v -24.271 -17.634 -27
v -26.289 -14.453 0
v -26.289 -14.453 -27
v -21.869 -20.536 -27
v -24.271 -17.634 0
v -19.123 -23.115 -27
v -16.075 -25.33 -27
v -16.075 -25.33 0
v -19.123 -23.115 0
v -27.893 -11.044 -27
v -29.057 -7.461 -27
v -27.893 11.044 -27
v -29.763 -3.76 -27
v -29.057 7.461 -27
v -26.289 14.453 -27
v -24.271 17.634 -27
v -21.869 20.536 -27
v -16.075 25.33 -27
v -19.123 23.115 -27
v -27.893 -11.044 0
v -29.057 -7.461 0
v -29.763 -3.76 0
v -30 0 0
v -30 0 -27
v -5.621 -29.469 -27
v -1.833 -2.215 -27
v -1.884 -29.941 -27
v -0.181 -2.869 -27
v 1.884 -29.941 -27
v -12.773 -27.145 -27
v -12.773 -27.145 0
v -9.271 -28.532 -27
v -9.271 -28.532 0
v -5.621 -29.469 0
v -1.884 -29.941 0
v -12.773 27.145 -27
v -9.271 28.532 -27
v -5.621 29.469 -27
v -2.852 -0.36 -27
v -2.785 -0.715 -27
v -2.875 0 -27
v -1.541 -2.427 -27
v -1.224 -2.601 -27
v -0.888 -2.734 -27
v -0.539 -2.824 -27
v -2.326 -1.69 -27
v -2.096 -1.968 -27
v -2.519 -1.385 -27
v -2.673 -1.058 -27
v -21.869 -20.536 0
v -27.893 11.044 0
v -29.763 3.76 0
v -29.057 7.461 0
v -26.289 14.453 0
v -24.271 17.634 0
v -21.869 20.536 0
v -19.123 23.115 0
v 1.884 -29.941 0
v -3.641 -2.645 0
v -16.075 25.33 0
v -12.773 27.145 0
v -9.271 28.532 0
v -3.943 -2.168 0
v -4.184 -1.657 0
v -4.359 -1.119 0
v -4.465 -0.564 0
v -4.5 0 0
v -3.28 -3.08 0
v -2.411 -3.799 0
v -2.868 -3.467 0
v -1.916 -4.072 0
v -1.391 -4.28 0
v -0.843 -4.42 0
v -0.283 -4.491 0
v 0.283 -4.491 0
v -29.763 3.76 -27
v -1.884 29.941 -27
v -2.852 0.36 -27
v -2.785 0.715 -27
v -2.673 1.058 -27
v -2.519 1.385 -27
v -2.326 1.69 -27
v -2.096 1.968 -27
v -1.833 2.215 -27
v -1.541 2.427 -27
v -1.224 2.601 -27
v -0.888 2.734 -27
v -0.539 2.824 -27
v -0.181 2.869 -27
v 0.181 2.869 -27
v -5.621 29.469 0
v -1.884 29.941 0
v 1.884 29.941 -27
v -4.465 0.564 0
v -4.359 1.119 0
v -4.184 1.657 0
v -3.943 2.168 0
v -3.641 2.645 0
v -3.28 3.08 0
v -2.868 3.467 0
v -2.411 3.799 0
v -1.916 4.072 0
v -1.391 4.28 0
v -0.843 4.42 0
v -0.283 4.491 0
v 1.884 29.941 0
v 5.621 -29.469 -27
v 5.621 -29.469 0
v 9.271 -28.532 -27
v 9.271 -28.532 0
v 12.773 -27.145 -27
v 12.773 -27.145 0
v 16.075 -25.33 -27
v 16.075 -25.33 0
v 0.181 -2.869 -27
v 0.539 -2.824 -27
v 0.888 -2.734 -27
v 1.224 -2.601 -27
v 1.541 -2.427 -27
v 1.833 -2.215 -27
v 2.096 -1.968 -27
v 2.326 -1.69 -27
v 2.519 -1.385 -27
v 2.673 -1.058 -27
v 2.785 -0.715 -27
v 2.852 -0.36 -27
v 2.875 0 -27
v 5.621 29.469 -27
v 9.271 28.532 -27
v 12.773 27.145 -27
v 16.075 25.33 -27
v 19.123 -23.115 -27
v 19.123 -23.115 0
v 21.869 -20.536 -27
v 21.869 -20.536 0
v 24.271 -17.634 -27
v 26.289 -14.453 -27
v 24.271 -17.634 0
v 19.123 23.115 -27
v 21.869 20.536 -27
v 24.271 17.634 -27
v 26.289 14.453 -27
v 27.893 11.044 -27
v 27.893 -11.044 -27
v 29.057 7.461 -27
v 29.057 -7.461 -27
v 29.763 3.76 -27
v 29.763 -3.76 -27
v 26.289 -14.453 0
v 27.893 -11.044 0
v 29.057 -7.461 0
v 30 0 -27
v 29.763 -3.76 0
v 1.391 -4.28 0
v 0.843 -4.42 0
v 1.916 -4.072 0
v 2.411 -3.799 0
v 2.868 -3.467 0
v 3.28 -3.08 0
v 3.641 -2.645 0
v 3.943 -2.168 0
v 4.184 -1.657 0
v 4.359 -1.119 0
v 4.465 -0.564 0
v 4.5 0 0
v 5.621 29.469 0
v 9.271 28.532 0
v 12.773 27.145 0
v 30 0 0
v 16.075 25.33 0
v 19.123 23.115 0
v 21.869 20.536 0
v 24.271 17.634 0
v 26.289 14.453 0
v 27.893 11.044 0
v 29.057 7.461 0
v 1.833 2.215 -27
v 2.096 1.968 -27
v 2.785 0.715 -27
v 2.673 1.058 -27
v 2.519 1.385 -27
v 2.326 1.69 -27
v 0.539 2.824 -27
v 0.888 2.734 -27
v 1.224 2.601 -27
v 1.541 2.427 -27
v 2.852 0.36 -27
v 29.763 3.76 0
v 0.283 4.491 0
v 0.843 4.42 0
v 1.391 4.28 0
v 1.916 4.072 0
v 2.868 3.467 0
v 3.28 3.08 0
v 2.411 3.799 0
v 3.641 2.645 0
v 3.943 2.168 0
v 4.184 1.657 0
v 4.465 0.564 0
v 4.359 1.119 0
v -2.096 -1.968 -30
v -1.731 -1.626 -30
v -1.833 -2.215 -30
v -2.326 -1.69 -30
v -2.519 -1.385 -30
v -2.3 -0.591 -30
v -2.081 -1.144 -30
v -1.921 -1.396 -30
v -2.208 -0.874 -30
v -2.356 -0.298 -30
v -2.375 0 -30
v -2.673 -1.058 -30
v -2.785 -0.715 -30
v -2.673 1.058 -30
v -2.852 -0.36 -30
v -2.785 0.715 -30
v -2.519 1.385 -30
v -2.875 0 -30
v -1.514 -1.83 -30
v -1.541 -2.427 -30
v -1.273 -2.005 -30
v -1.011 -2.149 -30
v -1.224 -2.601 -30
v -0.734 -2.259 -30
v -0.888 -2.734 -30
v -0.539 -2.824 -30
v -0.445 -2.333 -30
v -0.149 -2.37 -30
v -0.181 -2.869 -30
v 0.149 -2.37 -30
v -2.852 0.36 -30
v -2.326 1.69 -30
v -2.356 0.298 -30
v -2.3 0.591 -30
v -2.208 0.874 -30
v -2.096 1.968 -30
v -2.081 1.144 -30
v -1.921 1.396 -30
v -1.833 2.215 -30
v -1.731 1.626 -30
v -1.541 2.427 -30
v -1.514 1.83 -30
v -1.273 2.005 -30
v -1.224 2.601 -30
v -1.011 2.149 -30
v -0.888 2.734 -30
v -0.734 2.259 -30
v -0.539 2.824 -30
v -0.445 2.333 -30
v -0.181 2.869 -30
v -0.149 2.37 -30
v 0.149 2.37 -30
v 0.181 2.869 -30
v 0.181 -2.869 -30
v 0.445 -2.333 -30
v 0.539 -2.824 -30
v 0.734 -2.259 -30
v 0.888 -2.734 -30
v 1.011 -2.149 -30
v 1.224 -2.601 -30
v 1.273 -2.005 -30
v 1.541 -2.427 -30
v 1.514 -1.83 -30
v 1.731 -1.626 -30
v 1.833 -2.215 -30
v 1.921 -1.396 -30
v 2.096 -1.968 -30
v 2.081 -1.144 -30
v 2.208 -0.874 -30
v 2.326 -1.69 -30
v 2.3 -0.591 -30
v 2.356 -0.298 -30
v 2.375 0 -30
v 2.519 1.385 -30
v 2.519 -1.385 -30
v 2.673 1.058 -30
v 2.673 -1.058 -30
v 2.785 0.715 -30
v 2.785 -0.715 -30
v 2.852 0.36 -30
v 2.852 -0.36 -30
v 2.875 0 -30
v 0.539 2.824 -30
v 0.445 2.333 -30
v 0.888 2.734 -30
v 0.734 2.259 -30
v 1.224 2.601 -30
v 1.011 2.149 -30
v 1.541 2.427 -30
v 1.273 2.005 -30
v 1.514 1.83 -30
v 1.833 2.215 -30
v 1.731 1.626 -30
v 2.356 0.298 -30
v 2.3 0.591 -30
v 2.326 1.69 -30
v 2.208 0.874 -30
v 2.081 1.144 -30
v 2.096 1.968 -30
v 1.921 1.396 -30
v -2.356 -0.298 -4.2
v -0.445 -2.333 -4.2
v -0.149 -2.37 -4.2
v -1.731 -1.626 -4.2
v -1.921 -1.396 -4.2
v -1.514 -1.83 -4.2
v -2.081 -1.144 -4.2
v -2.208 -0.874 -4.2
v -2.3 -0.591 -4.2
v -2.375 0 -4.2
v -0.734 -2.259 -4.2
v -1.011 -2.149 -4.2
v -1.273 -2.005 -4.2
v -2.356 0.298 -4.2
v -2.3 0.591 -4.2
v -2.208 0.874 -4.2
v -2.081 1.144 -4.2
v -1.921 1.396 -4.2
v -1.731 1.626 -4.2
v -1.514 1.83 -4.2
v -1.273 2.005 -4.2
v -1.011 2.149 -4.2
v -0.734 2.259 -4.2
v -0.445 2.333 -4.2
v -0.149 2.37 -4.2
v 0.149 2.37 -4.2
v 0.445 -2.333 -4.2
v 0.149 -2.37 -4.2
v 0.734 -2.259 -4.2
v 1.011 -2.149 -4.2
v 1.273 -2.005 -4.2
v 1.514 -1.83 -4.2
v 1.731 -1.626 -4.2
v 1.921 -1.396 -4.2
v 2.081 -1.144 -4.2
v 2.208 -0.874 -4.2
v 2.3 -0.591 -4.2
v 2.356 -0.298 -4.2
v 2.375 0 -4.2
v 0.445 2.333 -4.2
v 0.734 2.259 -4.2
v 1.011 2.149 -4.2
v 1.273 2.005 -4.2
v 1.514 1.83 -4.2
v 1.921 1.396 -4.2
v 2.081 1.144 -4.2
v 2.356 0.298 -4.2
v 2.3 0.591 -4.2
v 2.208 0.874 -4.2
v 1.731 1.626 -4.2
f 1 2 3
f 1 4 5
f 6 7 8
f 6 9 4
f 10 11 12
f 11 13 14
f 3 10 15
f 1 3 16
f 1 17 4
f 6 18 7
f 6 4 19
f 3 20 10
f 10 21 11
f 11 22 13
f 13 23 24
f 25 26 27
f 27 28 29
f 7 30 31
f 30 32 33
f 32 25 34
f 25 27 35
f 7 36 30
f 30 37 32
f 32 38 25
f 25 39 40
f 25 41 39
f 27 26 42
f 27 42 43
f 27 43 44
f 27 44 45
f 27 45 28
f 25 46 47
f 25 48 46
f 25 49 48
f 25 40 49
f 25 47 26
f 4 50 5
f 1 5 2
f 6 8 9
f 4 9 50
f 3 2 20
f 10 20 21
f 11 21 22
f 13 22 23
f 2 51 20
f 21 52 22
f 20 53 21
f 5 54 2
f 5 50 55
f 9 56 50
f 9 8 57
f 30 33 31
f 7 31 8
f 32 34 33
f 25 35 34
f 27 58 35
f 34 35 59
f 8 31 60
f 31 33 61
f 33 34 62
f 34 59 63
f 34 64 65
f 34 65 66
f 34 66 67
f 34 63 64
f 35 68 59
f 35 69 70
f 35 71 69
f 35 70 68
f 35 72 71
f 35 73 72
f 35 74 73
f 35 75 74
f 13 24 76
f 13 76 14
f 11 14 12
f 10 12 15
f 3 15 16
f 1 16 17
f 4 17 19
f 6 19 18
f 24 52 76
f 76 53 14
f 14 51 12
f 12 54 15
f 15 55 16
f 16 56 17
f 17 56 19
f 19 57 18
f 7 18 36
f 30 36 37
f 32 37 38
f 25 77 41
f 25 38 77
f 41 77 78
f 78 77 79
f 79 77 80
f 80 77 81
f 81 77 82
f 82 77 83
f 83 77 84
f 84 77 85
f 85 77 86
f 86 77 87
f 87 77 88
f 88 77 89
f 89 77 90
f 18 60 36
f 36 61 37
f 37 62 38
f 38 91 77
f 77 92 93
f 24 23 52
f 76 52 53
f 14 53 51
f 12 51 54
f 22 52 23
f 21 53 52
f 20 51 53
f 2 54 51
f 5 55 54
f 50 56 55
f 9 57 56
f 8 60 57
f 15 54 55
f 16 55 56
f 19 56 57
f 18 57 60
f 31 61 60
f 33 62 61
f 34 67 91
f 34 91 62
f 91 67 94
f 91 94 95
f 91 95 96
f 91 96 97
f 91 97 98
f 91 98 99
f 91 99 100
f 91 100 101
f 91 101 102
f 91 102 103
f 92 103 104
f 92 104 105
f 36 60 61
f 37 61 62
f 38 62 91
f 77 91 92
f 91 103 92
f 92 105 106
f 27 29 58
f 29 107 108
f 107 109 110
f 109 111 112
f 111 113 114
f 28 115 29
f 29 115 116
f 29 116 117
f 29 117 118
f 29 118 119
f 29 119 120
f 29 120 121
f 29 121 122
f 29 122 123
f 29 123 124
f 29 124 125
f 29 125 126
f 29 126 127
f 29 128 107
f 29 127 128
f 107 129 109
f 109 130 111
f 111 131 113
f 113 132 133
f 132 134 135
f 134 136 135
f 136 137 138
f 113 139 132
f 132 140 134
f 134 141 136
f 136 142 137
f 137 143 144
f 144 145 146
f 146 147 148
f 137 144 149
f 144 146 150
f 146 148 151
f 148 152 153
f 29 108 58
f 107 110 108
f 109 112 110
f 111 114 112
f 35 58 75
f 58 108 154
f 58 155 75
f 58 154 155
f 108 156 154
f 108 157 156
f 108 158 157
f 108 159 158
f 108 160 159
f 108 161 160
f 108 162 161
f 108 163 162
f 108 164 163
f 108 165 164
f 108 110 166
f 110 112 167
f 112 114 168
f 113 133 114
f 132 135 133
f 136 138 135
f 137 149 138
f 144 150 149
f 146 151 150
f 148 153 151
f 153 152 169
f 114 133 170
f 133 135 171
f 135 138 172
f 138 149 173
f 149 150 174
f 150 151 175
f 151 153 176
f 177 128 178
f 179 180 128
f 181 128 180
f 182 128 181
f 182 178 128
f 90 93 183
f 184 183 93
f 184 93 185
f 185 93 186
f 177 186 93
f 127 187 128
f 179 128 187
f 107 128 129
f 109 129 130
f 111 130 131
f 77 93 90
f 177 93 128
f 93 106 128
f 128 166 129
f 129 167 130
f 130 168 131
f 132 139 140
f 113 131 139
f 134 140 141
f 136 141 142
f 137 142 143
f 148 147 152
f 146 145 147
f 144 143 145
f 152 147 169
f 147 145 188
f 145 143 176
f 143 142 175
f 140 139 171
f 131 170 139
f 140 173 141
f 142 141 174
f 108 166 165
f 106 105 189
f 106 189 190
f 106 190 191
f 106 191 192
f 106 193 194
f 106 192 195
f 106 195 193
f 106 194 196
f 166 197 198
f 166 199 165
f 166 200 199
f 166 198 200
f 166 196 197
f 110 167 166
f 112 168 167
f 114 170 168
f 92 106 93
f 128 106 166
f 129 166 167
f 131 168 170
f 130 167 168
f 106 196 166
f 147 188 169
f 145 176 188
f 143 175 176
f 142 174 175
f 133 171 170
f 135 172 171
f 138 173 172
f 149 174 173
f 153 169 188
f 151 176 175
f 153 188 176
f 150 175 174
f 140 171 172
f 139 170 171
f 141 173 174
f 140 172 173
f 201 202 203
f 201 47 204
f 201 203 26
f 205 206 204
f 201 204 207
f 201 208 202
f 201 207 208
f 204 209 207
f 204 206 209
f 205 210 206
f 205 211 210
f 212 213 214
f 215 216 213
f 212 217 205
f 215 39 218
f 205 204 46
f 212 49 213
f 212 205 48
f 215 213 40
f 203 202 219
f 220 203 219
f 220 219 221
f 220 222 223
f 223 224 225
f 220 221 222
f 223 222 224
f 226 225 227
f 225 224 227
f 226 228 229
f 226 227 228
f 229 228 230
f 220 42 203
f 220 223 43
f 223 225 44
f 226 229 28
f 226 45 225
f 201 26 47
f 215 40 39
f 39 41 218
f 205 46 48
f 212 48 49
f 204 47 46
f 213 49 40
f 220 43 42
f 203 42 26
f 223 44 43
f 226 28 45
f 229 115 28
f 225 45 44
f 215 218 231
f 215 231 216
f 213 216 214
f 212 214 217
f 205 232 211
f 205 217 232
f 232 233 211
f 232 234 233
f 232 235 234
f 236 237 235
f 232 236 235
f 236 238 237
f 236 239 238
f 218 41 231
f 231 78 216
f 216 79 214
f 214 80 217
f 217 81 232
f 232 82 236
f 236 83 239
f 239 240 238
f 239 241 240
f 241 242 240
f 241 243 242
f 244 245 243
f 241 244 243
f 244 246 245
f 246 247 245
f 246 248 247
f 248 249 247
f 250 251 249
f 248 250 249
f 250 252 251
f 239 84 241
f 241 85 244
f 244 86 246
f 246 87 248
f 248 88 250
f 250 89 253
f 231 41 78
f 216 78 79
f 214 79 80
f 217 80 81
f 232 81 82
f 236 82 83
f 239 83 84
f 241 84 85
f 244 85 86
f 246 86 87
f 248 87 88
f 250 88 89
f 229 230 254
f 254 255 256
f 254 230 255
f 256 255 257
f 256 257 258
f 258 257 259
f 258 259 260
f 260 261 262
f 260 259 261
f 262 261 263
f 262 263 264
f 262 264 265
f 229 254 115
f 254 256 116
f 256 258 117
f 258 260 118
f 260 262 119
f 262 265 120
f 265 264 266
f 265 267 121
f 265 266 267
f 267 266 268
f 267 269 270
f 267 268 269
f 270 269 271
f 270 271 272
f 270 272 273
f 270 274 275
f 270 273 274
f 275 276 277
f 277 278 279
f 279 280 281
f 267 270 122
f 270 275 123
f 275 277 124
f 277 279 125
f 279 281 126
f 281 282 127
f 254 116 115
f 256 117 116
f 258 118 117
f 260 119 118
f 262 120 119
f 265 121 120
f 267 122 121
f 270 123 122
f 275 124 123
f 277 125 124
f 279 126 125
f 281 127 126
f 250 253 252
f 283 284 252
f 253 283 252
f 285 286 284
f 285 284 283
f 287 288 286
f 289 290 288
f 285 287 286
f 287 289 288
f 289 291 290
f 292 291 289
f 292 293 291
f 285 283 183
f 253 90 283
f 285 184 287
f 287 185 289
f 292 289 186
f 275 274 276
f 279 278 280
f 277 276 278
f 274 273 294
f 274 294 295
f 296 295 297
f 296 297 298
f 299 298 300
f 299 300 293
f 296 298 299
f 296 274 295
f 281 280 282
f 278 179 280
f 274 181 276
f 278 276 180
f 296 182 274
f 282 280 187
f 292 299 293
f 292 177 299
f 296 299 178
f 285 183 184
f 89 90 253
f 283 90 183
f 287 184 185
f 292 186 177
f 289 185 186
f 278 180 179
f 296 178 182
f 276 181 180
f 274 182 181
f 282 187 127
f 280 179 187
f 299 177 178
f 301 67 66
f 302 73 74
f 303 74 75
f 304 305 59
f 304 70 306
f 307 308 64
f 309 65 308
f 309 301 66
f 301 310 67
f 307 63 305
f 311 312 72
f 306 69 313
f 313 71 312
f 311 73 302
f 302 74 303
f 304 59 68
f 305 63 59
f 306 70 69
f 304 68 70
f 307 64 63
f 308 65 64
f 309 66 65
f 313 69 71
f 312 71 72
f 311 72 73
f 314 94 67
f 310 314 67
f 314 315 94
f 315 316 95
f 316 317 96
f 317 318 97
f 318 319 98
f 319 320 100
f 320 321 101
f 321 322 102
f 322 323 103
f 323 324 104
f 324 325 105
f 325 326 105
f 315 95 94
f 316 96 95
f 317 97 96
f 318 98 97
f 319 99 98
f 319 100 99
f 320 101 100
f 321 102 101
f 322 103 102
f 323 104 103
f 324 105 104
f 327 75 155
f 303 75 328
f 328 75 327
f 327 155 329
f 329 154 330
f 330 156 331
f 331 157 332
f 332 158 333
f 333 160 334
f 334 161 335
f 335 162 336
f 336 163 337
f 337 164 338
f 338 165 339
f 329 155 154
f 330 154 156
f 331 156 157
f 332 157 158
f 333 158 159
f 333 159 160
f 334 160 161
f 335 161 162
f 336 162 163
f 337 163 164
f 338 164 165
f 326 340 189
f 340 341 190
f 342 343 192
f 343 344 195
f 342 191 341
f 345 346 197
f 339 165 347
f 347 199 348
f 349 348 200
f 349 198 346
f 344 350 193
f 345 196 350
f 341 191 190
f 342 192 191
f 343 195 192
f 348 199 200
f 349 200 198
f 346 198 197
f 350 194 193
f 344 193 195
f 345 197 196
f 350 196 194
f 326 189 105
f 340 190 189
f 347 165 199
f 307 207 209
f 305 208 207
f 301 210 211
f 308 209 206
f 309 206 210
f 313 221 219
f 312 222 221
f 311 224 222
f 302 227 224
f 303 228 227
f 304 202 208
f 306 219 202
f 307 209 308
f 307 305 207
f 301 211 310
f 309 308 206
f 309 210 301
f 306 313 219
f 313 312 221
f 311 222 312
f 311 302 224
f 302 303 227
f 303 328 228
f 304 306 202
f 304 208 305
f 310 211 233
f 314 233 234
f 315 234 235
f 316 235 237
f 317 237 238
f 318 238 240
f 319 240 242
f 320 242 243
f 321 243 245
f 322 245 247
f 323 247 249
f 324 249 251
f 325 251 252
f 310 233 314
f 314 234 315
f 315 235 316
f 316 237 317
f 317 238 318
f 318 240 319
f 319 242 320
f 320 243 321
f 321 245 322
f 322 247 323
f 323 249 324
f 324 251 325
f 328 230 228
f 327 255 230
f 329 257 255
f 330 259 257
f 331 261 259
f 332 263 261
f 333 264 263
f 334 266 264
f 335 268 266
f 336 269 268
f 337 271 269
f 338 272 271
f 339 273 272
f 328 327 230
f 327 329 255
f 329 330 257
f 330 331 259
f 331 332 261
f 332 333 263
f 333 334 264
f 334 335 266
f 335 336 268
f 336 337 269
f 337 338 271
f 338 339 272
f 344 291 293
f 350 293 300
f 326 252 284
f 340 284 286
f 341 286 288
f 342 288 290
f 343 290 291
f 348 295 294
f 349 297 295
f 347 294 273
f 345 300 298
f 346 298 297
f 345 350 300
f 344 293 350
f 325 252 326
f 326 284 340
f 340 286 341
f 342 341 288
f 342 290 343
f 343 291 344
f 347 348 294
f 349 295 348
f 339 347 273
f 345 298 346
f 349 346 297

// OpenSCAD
$fn = 50;

difference() {
	union() {
		translate(v = [0, 0, -27.0]) {
			cylinder(h = 27, r = 30.0);
		}
		#translate(v = [0, 0, -30.0]) {
			cylinder(h = 30, r = 2.875);
		}
	}
	union() {
		translate(v = [0, 0, 0]) {
			rotate(a = [0, 0, 0]) {
				difference() {
					union() {
						translate(v = [0, 0, -30.0]) {
							cylinder(h = 30, r = 2.25);
						}
						translate(v = [0, 0, -4.2]) {
							cylinder(h = 4.2, r1 = 2.375, r2 = 4.5);
						}
						translate(v = [0, 0, -30.0]) {
							cylinder(h = 30, r = 2.375);
						}
						translate(v = [0, 0, -30.0]) {
							cylinder(h = 30, r = 2.25);
						}
					}
					union();
				}
			}
		}
	}
}
